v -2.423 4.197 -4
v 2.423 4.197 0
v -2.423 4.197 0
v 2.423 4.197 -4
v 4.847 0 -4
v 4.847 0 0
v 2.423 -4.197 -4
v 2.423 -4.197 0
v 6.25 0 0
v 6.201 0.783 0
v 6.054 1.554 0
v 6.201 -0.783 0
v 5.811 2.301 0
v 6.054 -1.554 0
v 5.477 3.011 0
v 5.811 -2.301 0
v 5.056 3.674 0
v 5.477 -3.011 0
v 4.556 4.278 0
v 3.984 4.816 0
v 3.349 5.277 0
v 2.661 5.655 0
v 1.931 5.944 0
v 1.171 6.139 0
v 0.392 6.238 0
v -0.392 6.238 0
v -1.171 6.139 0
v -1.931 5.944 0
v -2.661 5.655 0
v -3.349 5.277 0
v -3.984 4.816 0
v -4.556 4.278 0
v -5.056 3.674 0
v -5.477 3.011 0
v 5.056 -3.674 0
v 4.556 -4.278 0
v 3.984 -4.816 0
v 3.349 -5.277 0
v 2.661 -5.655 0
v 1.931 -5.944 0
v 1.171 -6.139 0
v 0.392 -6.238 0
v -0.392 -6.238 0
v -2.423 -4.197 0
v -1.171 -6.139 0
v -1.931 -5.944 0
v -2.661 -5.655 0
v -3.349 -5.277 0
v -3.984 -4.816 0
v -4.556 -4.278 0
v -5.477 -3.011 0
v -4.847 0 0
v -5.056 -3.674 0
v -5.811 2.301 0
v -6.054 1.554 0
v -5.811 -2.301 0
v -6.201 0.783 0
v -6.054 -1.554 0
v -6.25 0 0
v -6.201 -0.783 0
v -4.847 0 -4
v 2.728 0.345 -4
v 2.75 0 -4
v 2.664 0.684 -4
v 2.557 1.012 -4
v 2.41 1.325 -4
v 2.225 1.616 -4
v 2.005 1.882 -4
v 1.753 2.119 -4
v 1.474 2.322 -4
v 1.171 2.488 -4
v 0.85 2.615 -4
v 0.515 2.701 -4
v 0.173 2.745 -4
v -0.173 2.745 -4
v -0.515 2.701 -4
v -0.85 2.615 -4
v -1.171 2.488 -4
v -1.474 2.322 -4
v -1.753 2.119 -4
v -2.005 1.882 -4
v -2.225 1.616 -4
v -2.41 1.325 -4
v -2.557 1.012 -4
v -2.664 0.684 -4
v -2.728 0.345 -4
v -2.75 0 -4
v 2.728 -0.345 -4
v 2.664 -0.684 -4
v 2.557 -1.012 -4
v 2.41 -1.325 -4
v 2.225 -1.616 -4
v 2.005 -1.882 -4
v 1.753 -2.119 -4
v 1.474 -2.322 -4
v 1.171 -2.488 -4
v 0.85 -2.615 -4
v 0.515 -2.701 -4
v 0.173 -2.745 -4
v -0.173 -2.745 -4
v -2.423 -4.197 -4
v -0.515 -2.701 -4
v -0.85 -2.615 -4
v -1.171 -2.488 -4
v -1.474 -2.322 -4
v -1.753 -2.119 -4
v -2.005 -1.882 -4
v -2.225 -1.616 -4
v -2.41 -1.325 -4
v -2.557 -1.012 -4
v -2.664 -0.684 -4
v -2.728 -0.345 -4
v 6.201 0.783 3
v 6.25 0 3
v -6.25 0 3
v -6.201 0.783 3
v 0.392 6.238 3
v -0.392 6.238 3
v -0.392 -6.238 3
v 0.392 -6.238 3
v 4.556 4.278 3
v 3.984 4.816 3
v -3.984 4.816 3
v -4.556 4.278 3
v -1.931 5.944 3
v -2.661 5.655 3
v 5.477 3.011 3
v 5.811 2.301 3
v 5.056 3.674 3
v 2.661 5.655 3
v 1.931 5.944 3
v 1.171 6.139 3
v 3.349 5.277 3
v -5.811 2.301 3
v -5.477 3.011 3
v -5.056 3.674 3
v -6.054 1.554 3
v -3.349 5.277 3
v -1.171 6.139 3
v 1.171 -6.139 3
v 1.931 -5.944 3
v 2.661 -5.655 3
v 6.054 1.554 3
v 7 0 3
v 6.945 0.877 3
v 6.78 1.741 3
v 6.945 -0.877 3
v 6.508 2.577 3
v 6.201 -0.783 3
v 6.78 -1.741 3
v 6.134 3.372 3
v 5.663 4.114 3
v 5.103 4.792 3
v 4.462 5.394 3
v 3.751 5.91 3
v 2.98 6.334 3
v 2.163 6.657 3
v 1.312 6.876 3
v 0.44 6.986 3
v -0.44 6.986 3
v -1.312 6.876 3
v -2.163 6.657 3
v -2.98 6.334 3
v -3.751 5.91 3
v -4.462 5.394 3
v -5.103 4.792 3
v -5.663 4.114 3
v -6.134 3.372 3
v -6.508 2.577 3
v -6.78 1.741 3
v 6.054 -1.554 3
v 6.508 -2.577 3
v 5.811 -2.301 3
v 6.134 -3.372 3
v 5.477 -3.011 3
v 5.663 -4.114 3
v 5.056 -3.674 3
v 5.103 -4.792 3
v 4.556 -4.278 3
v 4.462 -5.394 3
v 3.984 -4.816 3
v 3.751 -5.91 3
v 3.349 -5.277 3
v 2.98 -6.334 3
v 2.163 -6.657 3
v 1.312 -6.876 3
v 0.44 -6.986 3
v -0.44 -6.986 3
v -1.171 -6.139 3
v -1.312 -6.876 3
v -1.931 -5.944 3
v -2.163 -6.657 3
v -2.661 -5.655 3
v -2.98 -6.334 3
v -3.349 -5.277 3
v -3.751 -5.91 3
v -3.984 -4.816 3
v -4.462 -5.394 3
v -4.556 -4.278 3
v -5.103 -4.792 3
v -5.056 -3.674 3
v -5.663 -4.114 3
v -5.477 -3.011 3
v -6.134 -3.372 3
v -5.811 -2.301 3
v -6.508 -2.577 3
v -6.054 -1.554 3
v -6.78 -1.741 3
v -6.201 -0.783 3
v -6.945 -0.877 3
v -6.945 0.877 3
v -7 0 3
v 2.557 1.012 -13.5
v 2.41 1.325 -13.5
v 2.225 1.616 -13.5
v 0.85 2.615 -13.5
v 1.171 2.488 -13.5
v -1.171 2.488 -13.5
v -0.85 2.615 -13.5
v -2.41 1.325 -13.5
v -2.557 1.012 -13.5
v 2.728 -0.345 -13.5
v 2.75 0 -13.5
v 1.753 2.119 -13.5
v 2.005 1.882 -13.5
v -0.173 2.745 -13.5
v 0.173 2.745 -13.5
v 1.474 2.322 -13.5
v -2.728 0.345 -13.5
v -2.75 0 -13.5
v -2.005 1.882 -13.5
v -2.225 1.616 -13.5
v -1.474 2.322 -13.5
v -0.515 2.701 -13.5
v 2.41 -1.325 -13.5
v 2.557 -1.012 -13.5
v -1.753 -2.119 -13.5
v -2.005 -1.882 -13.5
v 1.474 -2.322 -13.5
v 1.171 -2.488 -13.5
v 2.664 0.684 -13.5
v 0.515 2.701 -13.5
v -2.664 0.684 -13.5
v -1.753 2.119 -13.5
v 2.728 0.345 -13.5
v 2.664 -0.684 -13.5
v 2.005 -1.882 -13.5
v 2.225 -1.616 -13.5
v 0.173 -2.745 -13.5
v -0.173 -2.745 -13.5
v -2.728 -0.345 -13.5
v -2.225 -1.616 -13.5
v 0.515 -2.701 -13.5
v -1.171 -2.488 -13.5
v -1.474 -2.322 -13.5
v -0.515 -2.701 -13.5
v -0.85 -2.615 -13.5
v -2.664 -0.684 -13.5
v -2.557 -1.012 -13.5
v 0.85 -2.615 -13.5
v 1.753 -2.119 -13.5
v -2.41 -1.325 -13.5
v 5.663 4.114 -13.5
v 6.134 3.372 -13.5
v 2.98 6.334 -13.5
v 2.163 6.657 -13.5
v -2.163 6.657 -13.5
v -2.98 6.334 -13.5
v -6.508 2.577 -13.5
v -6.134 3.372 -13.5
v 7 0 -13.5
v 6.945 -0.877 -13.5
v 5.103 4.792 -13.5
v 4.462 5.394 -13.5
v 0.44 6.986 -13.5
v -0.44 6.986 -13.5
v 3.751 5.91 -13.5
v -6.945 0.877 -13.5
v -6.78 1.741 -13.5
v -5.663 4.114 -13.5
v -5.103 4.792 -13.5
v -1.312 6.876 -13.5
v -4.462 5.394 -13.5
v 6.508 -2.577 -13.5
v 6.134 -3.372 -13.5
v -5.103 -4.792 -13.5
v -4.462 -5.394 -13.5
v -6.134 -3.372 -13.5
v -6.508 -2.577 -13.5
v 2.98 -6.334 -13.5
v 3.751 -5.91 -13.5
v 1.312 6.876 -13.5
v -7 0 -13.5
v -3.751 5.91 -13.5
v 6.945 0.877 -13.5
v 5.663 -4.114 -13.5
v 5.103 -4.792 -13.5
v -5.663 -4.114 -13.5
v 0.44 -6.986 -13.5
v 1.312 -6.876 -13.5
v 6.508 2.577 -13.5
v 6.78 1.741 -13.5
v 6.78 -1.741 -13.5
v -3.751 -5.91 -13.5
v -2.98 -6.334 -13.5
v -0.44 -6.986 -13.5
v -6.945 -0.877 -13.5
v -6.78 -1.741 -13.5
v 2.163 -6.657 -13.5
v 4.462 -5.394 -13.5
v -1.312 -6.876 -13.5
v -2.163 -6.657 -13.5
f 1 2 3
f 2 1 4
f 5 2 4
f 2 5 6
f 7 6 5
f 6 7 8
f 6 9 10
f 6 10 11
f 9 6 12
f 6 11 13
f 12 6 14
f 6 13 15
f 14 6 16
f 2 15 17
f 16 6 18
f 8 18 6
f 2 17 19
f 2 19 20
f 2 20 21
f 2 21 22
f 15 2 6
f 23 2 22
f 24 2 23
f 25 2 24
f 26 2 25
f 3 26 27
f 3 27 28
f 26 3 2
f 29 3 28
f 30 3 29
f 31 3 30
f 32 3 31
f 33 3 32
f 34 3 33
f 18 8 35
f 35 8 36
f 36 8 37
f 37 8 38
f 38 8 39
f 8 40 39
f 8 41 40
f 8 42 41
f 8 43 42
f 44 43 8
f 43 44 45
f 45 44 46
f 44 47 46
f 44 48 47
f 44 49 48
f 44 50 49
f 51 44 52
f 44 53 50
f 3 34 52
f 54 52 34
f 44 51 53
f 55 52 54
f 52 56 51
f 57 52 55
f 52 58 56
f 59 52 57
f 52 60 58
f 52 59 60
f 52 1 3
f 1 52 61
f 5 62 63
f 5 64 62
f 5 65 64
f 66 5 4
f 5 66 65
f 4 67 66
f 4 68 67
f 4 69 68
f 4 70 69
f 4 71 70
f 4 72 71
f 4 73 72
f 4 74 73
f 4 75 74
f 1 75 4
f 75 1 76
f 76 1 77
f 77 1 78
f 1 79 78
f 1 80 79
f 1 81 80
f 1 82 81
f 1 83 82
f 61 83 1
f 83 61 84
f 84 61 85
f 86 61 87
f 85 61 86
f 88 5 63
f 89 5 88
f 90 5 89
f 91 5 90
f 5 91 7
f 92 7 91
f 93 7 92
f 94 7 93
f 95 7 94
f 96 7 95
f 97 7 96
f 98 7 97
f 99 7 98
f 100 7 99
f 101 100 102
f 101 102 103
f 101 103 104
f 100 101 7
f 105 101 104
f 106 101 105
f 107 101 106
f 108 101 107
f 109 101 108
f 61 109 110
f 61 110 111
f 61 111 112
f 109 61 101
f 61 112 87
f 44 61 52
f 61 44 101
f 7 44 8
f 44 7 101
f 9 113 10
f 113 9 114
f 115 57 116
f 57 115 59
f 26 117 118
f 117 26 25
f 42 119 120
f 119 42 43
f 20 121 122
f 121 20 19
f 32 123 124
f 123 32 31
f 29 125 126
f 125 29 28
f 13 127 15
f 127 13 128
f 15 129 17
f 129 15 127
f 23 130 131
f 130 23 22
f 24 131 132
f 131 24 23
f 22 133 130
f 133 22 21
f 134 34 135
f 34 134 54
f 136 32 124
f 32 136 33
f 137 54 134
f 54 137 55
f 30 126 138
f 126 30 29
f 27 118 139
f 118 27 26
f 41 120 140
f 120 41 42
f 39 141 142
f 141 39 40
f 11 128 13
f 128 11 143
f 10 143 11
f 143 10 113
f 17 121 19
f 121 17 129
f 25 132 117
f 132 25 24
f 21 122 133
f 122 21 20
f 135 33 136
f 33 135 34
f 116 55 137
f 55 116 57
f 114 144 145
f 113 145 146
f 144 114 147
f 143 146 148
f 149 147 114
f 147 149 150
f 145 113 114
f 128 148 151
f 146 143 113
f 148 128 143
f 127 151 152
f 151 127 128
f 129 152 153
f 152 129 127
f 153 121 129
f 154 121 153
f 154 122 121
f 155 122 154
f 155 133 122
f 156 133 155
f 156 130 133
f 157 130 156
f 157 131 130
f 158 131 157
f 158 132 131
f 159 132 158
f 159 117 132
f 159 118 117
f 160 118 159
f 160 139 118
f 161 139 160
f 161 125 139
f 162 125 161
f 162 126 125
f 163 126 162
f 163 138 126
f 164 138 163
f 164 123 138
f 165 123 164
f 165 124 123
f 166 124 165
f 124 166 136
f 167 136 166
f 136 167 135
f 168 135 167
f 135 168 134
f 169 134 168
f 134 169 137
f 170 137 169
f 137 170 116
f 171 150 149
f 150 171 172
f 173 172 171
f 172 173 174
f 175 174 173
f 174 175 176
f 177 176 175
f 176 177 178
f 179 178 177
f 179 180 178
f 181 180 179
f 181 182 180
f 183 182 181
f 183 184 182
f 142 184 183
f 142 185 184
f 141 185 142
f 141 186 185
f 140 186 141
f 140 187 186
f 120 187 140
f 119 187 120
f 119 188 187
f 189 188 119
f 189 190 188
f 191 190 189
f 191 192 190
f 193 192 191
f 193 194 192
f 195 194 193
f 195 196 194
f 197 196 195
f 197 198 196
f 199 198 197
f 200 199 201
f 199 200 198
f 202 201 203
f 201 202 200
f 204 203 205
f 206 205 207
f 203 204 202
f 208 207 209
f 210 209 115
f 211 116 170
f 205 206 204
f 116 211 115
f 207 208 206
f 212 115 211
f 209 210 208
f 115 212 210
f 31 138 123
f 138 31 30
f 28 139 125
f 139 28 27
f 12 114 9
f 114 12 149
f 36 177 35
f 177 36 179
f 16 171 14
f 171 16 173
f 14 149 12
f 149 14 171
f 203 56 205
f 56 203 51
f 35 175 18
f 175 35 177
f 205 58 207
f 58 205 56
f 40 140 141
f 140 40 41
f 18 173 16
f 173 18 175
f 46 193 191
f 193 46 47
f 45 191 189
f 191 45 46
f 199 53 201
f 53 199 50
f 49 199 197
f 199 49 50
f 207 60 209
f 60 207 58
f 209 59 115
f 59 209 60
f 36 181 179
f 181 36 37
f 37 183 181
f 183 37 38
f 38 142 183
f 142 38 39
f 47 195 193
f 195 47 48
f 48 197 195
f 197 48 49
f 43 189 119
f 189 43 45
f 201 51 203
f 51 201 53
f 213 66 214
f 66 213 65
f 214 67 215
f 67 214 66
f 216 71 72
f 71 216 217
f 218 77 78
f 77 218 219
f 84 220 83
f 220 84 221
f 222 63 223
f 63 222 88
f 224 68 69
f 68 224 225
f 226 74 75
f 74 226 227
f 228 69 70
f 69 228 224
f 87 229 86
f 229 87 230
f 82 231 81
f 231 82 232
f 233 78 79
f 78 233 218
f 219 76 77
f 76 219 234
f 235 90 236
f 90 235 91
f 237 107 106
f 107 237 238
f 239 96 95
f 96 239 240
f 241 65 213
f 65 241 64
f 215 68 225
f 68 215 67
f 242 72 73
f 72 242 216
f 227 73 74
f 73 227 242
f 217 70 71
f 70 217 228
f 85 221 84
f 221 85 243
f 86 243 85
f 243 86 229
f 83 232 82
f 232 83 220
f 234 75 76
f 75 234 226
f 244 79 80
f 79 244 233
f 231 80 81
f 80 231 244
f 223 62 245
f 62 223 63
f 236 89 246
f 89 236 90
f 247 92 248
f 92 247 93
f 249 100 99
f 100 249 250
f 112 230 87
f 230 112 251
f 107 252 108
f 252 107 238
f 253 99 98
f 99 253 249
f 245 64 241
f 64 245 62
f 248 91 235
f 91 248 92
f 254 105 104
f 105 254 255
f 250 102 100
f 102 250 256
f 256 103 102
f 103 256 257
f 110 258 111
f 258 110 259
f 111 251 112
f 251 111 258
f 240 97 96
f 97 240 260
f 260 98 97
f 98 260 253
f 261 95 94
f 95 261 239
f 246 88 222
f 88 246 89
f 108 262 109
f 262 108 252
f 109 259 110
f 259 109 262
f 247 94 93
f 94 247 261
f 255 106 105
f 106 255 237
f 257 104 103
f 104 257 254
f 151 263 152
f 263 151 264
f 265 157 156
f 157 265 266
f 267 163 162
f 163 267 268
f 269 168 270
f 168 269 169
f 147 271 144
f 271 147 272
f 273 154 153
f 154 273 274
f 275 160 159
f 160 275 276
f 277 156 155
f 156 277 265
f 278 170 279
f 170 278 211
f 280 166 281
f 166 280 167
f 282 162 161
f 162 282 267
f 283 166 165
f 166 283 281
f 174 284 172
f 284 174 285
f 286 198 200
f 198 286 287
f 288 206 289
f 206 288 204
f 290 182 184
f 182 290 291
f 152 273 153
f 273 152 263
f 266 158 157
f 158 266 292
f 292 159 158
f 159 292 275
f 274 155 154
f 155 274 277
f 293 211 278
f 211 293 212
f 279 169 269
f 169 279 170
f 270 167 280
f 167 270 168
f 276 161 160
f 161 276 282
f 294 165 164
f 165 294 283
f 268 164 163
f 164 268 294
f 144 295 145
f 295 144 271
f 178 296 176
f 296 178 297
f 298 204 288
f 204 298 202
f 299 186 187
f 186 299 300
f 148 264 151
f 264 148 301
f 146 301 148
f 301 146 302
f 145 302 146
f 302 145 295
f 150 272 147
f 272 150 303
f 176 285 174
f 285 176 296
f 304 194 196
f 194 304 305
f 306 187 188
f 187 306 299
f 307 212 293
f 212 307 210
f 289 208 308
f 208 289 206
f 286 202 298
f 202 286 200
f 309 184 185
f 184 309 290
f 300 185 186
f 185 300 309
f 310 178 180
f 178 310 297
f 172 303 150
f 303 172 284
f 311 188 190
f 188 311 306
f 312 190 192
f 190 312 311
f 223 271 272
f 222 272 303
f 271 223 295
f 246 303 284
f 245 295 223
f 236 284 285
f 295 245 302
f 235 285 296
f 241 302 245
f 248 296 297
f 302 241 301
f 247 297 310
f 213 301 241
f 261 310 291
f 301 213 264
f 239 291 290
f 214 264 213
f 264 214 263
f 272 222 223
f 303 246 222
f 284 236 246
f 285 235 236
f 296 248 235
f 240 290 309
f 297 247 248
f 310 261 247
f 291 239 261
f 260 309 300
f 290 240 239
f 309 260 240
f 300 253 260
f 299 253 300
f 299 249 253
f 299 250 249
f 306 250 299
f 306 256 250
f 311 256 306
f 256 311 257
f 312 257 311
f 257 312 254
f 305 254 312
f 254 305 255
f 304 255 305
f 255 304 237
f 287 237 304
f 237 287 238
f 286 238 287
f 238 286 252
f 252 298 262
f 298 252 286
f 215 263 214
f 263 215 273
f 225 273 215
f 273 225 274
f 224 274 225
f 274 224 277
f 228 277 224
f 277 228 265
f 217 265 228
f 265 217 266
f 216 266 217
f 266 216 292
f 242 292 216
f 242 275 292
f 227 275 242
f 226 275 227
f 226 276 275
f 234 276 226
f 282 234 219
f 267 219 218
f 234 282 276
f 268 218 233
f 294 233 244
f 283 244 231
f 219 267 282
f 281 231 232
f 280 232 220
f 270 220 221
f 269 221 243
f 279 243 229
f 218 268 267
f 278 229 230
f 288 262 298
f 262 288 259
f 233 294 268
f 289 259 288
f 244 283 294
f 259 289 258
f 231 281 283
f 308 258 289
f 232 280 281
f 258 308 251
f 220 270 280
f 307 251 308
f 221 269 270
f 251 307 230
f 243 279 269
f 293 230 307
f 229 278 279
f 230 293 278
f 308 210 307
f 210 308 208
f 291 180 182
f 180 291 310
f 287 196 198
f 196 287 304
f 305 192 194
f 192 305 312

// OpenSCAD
$fn = 50;

difference() {
	union() {
		translate(v = [0, 0, -13.5]) {
			cylinder(h = 16.5, r = 7.0);
		}
	}
	union() {
		translate(v = [0, 0, 0]) {
			rotate(a = [0, 0, 0]) {
				difference() {
					union() {
						translate(v = [0, 0, -4]) {
							linear_extrude(height = 4) {
								polygon(points = [[4.8468, 0.0], [2.4234000000000004, 4.197451927062417], [-2.423399999999999, 4.197451927062417], [-4.8468, 5.935618106107392e-16], [-2.423400000000002, -4.197451927062416], [2.423399999999997, -4.197451927062419]]);
							}
						}
					}
					union();
				}
			}
		}
		#cylinder(h = 3, r = 6.25);
		#translate(v = [0, 0, -100.0]) {
			cylinder(h = 200, r = 2.75);
		}
	}
}
